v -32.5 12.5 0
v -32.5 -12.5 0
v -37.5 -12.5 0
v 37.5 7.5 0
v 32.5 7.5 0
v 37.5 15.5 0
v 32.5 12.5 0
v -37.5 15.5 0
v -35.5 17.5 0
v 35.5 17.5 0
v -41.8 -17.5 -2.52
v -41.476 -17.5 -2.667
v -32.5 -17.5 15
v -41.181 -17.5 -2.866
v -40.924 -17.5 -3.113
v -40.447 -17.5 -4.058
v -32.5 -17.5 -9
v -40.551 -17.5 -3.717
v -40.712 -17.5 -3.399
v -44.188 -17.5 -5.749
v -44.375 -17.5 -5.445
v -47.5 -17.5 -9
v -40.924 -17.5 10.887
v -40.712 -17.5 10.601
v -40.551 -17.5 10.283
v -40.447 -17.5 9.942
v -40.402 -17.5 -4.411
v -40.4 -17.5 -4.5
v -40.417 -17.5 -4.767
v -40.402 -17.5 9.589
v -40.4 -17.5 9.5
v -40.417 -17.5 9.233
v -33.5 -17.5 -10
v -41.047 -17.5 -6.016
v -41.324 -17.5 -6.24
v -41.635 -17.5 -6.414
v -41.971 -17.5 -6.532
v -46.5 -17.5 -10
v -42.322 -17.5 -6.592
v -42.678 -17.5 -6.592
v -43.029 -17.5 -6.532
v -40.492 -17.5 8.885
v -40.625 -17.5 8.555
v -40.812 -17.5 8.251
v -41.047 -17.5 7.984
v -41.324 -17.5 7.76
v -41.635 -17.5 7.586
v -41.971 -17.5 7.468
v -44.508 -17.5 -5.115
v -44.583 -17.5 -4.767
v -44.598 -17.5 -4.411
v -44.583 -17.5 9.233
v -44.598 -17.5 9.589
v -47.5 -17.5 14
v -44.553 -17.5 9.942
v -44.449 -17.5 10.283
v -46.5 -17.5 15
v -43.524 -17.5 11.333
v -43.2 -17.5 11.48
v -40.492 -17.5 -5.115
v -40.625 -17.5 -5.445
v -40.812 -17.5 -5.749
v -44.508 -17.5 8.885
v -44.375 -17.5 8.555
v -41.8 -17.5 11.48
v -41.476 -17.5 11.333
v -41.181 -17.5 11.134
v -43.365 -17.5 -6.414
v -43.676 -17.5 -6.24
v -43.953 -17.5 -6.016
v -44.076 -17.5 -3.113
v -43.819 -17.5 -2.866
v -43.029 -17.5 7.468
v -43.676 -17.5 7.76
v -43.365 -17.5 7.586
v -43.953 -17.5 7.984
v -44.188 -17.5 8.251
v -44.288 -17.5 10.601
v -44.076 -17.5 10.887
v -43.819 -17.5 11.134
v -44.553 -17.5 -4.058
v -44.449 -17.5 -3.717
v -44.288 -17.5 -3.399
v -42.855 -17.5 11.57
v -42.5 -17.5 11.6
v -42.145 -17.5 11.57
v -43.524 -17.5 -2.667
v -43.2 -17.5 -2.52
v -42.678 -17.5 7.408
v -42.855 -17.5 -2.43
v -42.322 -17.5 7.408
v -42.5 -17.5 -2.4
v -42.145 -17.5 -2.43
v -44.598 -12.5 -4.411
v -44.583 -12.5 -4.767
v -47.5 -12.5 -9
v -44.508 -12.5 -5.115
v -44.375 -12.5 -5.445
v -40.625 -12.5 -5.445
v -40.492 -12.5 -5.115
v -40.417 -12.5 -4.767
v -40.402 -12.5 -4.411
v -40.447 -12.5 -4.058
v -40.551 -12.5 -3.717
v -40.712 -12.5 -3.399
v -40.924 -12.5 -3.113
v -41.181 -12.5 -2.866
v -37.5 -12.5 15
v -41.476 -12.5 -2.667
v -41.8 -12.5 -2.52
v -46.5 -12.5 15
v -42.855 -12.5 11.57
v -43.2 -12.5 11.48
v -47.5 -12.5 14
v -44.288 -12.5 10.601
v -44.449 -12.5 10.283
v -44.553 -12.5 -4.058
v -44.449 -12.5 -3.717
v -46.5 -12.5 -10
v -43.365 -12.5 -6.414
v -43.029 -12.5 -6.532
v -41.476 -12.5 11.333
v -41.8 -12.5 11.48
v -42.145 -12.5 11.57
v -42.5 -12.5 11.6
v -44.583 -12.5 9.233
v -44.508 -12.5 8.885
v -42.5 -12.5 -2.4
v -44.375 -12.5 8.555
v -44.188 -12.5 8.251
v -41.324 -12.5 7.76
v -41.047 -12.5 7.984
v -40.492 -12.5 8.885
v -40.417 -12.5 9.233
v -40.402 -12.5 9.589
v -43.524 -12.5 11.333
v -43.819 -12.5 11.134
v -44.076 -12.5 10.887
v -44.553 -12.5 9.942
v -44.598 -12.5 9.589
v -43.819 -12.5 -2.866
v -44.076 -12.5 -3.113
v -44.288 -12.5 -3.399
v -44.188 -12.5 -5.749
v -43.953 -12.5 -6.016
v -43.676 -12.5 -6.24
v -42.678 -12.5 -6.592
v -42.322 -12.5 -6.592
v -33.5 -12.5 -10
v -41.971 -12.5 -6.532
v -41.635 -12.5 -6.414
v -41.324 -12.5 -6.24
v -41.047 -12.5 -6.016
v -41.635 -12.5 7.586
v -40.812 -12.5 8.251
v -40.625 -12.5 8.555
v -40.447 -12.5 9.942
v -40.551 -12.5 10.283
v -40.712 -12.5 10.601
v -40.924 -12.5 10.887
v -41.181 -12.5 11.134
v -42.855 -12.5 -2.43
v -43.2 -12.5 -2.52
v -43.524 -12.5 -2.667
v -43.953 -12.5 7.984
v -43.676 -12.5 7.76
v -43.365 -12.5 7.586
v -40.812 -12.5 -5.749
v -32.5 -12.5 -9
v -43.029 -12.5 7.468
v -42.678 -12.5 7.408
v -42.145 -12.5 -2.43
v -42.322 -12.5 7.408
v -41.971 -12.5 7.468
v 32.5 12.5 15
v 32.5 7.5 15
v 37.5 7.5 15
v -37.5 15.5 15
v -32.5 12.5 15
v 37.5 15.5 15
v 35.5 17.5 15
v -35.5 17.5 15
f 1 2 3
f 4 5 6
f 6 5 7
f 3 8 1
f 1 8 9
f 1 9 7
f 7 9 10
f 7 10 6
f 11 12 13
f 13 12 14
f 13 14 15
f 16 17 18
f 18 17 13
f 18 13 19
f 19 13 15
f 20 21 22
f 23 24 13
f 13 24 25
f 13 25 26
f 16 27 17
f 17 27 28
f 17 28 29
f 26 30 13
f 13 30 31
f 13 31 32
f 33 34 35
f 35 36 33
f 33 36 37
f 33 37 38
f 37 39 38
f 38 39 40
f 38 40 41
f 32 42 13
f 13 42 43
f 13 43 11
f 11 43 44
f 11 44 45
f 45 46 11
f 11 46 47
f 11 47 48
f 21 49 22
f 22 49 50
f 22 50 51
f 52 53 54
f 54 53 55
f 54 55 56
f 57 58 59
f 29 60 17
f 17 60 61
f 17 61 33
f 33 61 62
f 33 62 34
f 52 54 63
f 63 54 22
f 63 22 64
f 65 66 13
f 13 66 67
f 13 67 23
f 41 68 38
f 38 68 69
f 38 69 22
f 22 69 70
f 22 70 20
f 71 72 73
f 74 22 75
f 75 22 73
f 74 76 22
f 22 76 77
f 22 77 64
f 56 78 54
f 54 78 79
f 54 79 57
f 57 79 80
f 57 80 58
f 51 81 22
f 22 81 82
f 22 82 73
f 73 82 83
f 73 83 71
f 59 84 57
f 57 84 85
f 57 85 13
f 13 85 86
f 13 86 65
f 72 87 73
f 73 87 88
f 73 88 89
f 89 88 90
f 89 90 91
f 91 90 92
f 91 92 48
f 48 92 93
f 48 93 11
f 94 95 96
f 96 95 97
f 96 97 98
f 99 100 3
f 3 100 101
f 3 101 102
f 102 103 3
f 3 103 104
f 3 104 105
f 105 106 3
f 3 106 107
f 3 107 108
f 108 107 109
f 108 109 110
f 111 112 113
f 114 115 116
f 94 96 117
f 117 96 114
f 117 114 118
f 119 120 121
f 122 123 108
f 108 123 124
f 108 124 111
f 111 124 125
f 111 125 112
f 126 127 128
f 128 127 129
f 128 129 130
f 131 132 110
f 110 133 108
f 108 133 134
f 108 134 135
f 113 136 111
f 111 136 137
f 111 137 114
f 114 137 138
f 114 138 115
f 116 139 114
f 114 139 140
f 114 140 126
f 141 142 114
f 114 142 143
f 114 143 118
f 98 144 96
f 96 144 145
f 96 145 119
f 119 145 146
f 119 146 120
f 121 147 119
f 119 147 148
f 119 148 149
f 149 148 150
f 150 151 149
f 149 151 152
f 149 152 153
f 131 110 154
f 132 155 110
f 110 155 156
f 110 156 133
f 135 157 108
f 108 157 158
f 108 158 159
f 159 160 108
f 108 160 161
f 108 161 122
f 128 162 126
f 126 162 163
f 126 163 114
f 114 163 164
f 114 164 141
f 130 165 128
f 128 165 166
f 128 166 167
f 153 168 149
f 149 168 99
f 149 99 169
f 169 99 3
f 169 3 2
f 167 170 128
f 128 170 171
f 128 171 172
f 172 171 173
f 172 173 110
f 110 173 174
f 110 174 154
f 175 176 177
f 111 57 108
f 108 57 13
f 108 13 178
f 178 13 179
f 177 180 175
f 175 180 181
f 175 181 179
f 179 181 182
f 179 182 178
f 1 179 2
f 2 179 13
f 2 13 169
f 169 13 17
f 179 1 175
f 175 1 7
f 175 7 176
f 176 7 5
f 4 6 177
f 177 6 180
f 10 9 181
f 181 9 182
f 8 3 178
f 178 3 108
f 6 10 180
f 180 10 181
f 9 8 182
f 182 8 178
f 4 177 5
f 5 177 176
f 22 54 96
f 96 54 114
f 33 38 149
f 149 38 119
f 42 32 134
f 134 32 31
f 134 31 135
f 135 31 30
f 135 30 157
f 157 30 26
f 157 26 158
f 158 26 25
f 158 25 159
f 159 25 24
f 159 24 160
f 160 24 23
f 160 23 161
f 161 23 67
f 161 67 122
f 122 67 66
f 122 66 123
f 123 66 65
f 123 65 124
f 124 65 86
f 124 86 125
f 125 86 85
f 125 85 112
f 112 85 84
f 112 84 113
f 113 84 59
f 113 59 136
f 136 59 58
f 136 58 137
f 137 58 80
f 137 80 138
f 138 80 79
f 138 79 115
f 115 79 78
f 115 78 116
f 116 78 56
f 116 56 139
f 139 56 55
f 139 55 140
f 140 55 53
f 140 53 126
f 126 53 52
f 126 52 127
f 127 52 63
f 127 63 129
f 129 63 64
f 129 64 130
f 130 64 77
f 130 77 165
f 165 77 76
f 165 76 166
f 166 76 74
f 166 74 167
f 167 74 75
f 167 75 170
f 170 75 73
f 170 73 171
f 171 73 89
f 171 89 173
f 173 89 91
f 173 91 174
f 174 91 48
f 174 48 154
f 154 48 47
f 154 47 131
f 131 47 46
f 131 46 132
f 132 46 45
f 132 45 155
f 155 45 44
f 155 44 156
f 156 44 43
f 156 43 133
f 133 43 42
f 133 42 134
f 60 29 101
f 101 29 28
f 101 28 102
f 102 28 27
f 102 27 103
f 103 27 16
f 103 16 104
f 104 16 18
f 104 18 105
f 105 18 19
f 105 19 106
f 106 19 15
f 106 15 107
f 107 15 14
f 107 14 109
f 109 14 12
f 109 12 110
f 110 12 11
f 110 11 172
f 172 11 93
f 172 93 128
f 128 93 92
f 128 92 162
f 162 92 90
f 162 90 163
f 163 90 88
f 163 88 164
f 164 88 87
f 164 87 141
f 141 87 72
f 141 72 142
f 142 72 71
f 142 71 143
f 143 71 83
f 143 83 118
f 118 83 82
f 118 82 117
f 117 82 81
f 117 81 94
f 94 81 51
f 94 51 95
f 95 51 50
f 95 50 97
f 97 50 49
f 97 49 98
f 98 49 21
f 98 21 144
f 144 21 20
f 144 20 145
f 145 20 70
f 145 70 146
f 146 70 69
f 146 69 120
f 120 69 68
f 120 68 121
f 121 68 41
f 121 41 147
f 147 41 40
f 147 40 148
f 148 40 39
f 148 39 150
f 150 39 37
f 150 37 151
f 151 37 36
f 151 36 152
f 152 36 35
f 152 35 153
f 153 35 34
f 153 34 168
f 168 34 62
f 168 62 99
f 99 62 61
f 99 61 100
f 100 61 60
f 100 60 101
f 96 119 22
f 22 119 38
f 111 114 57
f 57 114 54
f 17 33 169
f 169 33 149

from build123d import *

# Parameters (mm, degrees)
BOSS_EXTRUDE1_DEPTH     = 30
SKETCH2_W               = 50
SKETCH2_H               = 20
CUT_EXTRUDE1_DEPTH      = 30
CHAMFER1_SIZE           = 2
SKETCH3_R               = 2.1
CUT_EXTRUDE2_DEPTH      = 30
SKETCH6_W               = 5
SKETCH6_H               = 30
BOSS_EXTRUDE2_DEPTH     = 5
SKETCH7_W               = 126.18944296
SKETCH7_H               = 49.64624499
CUT_EXTRUDE3_DEPTH      = 15
SKETCH8_W               = 20
SKETCH8_H               = 15
BOSS_EXTRUDE3_DEPTH     = 5
SKETCH9_W               = 71
SKETCH9_H               = 15
BOSS_EXTRUDE4_DEPTH     = 5
SKETCH10_W              = 15
SKETCH10_H              = 20
SKETCH10_H_2            = 5
CUT_EXTRUDE4_DEPTH      = 38
CUT_EXTRUDE4_DEPTH_BACK = 27
SKETCH11_R              = 2.1
CUT_EXTRUDE5_DEPTH      = 27
SKETCH12_R              = 2.1
BOSS_EXTRUDE5_DEPTH     = 5
SKETCH13_R              = 2.1
CUT_EXTRUDE6_DEPTH      = 5
SKETCH14_W              = 5
SKETCH14_H              = 15
CUT_EXTRUDE7_DEPTH      = 10
SKETCH15_W              = 5
SKETCH15_H              = 15
CUT_EXTRUDE8_DEPTH      = 10
SKETCH16_W              = 10
SKETCH16_H              = 25
BOSS_EXTRUDE6_DEPTH     = 5
SKETCH17_R              = 2.1
CUT_EXTRUDE9_DEPTH      = 30
SKETCH18_W              = 10
SKETCH18_H              = 5
BOSS_EXTRUDE7_DEPTH     = 5
CHAMFER3_SIZE           = 1
CHAMFER4_SIZE           = 1


with BuildPart() as part:
    # Sketch1 → Boss-Extrude1 (new body)
    with BuildSketch(Plane.XY):
        Polygon((-57.5, -17.5), (-37.5, -17.5), (-32.5, -17.5), (-32.5, 12.5), (32.5, 12.5), (32.5, -17.5), (37.5, -17.5), (57.5, -17.5), (57.5, -12.5), (37.5, -12.5), (37.5, 17.5), (-37.5, 17.5), (-37.5, -12.5), (-57.5, -12.5), align=None)
    extrude(amount=BOSS_EXTRUDE1_DEPTH)

    # Sketch2 → Cut-Extrude1 (cut)
    with BuildSketch(Plane(origin=(0, 17.5, 0), x_dir=(1, 0, 0), z_dir=(0, 1, 0))):
        with Locations((0, -15)):
            Rectangle(SKETCH2_W, SKETCH2_H)
    extrude(amount=-CUT_EXTRUDE1_DEPTH, mode=Mode.SUBTRACT)

    # Chamfer1
    chamfer1_edges = [part.edges().sort_by_distance(p)[0] for p in [
        (-37.5, 17.5, 15),
        (37.5, 17.5, 15),
    ]]
    chamfer(chamfer1_edges, length=CHAMFER1_SIZE)

    # Sketch3 → Cut-Extrude2 (cut)
    with BuildSketch(Plane(origin=(0, -12.5, 0), x_dir=(1, 0, 0), z_dir=(0, 1, 0))):
        with Locations((-47.5, -15)):
            Circle(SKETCH3_R)
        with Locations((47.5, -15)):
            Circle(SKETCH3_R)
    extrude(amount=-CUT_EXTRUDE2_DEPTH, mode=Mode.SUBTRACT)

    # Sketch6 → Boss-Extrude2 (add)
    with BuildSketch(Plane(origin=(0, 17.5, 0), x_dir=(1, 0, 0), z_dir=(0, 1, 0))):
        with Locations((0, -15)):
            Rectangle(SKETCH6_W, SKETCH6_H)
    extrude(amount=-BOSS_EXTRUDE2_DEPTH)

    # Sketch7 → Cut-Extrude3 (cut)
    with BuildSketch(Plane.XY.offset(30)):
        Rectangle(SKETCH7_W, SKETCH7_H)
    extrude(amount=-CUT_EXTRUDE3_DEPTH, mode=Mode.SUBTRACT)

    # Sketch8 → Boss-Extrude3 (add, through all)
    with BuildSketch(Plane(origin=(0, -12.5, 0), x_dir=(1, 0, 0), z_dir=(0, 1, 0))):
        with Locations((-47.5, -7.5)):
            Rectangle(SKETCH8_W, SKETCH8_H)
    extrude(amount=-BOSS_EXTRUDE3_DEPTH)

    # Sketch9 → Boss-Extrude4 (add)
    with BuildSketch(Plane(origin=(0, 17.5, 0), x_dir=(1, 0, 0), z_dir=(0, 1, 0))):
        with Locations((0, -7.5)):
            Rectangle(SKETCH9_W, SKETCH9_H)
    extrude(amount=-BOSS_EXTRUDE4_DEPTH)

    # Sketch10 → Cut-Extrude4 (cut, two sides)
    with BuildSketch(Plane(origin=(37.5, 0, 0), x_dir=(0, 0, -1), z_dir=(1, 0, 0))) as cut_extrude4_sk:
        with Locations((-7.5, -2.5)):
            Rectangle(SKETCH10_W, SKETCH10_H)
        with Locations((-7.5, -15)):
            Rectangle(SKETCH10_W, SKETCH10_H_2)
    extrude(amount=CUT_EXTRUDE4_DEPTH, mode=Mode.SUBTRACT)
    extrude(cut_extrude4_sk.sketch, amount=-CUT_EXTRUDE4_DEPTH_BACK, mode=Mode.SUBTRACT)

    # Sketch11 → Cut-Extrude5 (cut)
    with BuildSketch(Plane(origin=(0, -12.5, 0), x_dir=(1, 0, 0), z_dir=(0, 1, 0))):
        with Locations((-47.5, -7.5)):
            Circle(SKETCH11_R)
    extrude(amount=-CUT_EXTRUDE5_DEPTH, mode=Mode.SUBTRACT)

    # Sketch12 → Boss-Extrude5 (add)
    with BuildSketch(Plane(origin=(0, -17.5, 0), x_dir=(-1, 0, 0), z_dir=(0, -1, 0))):
        with Locations((47.5, -7.5)):
            Circle(SKETCH12_R)
    extrude(amount=-BOSS_EXTRUDE5_DEPTH)

    # Sketch13 → Cut-Extrude6 (cut)
    with BuildSketch(Plane(origin=(0, -17.5, 0), x_dir=(-1, 0, 0), z_dir=(0, -1, 0))):
        with Locations((42.5, -11)):
            Circle(SKETCH13_R)
        with Locations((42.5, -4)):
            Circle(SKETCH13_R)
    extrude(amount=-CUT_EXTRUDE6_DEPTH, mode=Mode.SUBTRACT)

    # Sketch14 → Cut-Extrude7 (cut)
    with BuildSketch(Plane(origin=(0, -17.5, 0), x_dir=(-1, 0, 0), z_dir=(0, -1, 0))):
        with Locations((55, -7.5)):
            Rectangle(SKETCH14_W, SKETCH14_H)
    extrude(amount=-CUT_EXTRUDE7_DEPTH, mode=Mode.SUBTRACT)

    # Sketch15 → Cut-Extrude8 (cut)
    with BuildSketch(Plane(origin=(0, -12.5, 0), x_dir=(1, 0, 0), z_dir=(0, 1, 0))):
        with Locations((-50, -7.5)):
            Rectangle(SKETCH15_W, SKETCH15_H)
    extrude(amount=-CUT_EXTRUDE8_DEPTH, mode=Mode.SUBTRACT)

    # Sketch16 → Boss-Extrude6 (add, through all)
    with BuildSketch(Plane(origin=(0, -12.5, 0), x_dir=(1, 0, 0), z_dir=(0, 1, 0))):
        with Locations((-42.5, -2.5)):
            Rectangle(SKETCH16_W, SKETCH16_H)
    extrude(amount=-BOSS_EXTRUDE6_DEPTH)

    # Sketch17 → Cut-Extrude9 (cut)
    with BuildSketch(Plane(origin=(0, -12.5, 0), x_dir=(1, 0, 0), z_dir=(0, 1, 0))):
        with Locations((-42.5, 4.5)):
            Circle(SKETCH17_R)
        with Locations((-42.5, -9.5)):
            Circle(SKETCH17_R)
    extrude(amount=-CUT_EXTRUDE9_DEPTH, mode=Mode.SUBTRACT)

    # Sketch18 → Boss-Extrude7 (add)
    with BuildSketch(Plane(origin=(-37.5, 0, 0), x_dir=(0, 0, -1), z_dir=(1, 0, 0))):
        with Locations((5, -15)):
            Rectangle(SKETCH18_W, SKETCH18_H)
    extrude(amount=BOSS_EXTRUDE7_DEPTH)

    # Chamfer3
    chamfer3_edges = [part.edges().sort_by_distance(p)[0] for p in [
        (-47.5, -15, 15),
        (-47.5, -15, -10),
    ]]
    chamfer(chamfer3_edges, length=CHAMFER3_SIZE)

    # Chamfer4
    chamfer4_edges = [part.edges().sort_by_distance(p)[0] for p in [
        (-32.5, -15, -10),
    ]]
    chamfer(chamfer4_edges, length=CHAMFER4_SIZE)


solid = part.part
